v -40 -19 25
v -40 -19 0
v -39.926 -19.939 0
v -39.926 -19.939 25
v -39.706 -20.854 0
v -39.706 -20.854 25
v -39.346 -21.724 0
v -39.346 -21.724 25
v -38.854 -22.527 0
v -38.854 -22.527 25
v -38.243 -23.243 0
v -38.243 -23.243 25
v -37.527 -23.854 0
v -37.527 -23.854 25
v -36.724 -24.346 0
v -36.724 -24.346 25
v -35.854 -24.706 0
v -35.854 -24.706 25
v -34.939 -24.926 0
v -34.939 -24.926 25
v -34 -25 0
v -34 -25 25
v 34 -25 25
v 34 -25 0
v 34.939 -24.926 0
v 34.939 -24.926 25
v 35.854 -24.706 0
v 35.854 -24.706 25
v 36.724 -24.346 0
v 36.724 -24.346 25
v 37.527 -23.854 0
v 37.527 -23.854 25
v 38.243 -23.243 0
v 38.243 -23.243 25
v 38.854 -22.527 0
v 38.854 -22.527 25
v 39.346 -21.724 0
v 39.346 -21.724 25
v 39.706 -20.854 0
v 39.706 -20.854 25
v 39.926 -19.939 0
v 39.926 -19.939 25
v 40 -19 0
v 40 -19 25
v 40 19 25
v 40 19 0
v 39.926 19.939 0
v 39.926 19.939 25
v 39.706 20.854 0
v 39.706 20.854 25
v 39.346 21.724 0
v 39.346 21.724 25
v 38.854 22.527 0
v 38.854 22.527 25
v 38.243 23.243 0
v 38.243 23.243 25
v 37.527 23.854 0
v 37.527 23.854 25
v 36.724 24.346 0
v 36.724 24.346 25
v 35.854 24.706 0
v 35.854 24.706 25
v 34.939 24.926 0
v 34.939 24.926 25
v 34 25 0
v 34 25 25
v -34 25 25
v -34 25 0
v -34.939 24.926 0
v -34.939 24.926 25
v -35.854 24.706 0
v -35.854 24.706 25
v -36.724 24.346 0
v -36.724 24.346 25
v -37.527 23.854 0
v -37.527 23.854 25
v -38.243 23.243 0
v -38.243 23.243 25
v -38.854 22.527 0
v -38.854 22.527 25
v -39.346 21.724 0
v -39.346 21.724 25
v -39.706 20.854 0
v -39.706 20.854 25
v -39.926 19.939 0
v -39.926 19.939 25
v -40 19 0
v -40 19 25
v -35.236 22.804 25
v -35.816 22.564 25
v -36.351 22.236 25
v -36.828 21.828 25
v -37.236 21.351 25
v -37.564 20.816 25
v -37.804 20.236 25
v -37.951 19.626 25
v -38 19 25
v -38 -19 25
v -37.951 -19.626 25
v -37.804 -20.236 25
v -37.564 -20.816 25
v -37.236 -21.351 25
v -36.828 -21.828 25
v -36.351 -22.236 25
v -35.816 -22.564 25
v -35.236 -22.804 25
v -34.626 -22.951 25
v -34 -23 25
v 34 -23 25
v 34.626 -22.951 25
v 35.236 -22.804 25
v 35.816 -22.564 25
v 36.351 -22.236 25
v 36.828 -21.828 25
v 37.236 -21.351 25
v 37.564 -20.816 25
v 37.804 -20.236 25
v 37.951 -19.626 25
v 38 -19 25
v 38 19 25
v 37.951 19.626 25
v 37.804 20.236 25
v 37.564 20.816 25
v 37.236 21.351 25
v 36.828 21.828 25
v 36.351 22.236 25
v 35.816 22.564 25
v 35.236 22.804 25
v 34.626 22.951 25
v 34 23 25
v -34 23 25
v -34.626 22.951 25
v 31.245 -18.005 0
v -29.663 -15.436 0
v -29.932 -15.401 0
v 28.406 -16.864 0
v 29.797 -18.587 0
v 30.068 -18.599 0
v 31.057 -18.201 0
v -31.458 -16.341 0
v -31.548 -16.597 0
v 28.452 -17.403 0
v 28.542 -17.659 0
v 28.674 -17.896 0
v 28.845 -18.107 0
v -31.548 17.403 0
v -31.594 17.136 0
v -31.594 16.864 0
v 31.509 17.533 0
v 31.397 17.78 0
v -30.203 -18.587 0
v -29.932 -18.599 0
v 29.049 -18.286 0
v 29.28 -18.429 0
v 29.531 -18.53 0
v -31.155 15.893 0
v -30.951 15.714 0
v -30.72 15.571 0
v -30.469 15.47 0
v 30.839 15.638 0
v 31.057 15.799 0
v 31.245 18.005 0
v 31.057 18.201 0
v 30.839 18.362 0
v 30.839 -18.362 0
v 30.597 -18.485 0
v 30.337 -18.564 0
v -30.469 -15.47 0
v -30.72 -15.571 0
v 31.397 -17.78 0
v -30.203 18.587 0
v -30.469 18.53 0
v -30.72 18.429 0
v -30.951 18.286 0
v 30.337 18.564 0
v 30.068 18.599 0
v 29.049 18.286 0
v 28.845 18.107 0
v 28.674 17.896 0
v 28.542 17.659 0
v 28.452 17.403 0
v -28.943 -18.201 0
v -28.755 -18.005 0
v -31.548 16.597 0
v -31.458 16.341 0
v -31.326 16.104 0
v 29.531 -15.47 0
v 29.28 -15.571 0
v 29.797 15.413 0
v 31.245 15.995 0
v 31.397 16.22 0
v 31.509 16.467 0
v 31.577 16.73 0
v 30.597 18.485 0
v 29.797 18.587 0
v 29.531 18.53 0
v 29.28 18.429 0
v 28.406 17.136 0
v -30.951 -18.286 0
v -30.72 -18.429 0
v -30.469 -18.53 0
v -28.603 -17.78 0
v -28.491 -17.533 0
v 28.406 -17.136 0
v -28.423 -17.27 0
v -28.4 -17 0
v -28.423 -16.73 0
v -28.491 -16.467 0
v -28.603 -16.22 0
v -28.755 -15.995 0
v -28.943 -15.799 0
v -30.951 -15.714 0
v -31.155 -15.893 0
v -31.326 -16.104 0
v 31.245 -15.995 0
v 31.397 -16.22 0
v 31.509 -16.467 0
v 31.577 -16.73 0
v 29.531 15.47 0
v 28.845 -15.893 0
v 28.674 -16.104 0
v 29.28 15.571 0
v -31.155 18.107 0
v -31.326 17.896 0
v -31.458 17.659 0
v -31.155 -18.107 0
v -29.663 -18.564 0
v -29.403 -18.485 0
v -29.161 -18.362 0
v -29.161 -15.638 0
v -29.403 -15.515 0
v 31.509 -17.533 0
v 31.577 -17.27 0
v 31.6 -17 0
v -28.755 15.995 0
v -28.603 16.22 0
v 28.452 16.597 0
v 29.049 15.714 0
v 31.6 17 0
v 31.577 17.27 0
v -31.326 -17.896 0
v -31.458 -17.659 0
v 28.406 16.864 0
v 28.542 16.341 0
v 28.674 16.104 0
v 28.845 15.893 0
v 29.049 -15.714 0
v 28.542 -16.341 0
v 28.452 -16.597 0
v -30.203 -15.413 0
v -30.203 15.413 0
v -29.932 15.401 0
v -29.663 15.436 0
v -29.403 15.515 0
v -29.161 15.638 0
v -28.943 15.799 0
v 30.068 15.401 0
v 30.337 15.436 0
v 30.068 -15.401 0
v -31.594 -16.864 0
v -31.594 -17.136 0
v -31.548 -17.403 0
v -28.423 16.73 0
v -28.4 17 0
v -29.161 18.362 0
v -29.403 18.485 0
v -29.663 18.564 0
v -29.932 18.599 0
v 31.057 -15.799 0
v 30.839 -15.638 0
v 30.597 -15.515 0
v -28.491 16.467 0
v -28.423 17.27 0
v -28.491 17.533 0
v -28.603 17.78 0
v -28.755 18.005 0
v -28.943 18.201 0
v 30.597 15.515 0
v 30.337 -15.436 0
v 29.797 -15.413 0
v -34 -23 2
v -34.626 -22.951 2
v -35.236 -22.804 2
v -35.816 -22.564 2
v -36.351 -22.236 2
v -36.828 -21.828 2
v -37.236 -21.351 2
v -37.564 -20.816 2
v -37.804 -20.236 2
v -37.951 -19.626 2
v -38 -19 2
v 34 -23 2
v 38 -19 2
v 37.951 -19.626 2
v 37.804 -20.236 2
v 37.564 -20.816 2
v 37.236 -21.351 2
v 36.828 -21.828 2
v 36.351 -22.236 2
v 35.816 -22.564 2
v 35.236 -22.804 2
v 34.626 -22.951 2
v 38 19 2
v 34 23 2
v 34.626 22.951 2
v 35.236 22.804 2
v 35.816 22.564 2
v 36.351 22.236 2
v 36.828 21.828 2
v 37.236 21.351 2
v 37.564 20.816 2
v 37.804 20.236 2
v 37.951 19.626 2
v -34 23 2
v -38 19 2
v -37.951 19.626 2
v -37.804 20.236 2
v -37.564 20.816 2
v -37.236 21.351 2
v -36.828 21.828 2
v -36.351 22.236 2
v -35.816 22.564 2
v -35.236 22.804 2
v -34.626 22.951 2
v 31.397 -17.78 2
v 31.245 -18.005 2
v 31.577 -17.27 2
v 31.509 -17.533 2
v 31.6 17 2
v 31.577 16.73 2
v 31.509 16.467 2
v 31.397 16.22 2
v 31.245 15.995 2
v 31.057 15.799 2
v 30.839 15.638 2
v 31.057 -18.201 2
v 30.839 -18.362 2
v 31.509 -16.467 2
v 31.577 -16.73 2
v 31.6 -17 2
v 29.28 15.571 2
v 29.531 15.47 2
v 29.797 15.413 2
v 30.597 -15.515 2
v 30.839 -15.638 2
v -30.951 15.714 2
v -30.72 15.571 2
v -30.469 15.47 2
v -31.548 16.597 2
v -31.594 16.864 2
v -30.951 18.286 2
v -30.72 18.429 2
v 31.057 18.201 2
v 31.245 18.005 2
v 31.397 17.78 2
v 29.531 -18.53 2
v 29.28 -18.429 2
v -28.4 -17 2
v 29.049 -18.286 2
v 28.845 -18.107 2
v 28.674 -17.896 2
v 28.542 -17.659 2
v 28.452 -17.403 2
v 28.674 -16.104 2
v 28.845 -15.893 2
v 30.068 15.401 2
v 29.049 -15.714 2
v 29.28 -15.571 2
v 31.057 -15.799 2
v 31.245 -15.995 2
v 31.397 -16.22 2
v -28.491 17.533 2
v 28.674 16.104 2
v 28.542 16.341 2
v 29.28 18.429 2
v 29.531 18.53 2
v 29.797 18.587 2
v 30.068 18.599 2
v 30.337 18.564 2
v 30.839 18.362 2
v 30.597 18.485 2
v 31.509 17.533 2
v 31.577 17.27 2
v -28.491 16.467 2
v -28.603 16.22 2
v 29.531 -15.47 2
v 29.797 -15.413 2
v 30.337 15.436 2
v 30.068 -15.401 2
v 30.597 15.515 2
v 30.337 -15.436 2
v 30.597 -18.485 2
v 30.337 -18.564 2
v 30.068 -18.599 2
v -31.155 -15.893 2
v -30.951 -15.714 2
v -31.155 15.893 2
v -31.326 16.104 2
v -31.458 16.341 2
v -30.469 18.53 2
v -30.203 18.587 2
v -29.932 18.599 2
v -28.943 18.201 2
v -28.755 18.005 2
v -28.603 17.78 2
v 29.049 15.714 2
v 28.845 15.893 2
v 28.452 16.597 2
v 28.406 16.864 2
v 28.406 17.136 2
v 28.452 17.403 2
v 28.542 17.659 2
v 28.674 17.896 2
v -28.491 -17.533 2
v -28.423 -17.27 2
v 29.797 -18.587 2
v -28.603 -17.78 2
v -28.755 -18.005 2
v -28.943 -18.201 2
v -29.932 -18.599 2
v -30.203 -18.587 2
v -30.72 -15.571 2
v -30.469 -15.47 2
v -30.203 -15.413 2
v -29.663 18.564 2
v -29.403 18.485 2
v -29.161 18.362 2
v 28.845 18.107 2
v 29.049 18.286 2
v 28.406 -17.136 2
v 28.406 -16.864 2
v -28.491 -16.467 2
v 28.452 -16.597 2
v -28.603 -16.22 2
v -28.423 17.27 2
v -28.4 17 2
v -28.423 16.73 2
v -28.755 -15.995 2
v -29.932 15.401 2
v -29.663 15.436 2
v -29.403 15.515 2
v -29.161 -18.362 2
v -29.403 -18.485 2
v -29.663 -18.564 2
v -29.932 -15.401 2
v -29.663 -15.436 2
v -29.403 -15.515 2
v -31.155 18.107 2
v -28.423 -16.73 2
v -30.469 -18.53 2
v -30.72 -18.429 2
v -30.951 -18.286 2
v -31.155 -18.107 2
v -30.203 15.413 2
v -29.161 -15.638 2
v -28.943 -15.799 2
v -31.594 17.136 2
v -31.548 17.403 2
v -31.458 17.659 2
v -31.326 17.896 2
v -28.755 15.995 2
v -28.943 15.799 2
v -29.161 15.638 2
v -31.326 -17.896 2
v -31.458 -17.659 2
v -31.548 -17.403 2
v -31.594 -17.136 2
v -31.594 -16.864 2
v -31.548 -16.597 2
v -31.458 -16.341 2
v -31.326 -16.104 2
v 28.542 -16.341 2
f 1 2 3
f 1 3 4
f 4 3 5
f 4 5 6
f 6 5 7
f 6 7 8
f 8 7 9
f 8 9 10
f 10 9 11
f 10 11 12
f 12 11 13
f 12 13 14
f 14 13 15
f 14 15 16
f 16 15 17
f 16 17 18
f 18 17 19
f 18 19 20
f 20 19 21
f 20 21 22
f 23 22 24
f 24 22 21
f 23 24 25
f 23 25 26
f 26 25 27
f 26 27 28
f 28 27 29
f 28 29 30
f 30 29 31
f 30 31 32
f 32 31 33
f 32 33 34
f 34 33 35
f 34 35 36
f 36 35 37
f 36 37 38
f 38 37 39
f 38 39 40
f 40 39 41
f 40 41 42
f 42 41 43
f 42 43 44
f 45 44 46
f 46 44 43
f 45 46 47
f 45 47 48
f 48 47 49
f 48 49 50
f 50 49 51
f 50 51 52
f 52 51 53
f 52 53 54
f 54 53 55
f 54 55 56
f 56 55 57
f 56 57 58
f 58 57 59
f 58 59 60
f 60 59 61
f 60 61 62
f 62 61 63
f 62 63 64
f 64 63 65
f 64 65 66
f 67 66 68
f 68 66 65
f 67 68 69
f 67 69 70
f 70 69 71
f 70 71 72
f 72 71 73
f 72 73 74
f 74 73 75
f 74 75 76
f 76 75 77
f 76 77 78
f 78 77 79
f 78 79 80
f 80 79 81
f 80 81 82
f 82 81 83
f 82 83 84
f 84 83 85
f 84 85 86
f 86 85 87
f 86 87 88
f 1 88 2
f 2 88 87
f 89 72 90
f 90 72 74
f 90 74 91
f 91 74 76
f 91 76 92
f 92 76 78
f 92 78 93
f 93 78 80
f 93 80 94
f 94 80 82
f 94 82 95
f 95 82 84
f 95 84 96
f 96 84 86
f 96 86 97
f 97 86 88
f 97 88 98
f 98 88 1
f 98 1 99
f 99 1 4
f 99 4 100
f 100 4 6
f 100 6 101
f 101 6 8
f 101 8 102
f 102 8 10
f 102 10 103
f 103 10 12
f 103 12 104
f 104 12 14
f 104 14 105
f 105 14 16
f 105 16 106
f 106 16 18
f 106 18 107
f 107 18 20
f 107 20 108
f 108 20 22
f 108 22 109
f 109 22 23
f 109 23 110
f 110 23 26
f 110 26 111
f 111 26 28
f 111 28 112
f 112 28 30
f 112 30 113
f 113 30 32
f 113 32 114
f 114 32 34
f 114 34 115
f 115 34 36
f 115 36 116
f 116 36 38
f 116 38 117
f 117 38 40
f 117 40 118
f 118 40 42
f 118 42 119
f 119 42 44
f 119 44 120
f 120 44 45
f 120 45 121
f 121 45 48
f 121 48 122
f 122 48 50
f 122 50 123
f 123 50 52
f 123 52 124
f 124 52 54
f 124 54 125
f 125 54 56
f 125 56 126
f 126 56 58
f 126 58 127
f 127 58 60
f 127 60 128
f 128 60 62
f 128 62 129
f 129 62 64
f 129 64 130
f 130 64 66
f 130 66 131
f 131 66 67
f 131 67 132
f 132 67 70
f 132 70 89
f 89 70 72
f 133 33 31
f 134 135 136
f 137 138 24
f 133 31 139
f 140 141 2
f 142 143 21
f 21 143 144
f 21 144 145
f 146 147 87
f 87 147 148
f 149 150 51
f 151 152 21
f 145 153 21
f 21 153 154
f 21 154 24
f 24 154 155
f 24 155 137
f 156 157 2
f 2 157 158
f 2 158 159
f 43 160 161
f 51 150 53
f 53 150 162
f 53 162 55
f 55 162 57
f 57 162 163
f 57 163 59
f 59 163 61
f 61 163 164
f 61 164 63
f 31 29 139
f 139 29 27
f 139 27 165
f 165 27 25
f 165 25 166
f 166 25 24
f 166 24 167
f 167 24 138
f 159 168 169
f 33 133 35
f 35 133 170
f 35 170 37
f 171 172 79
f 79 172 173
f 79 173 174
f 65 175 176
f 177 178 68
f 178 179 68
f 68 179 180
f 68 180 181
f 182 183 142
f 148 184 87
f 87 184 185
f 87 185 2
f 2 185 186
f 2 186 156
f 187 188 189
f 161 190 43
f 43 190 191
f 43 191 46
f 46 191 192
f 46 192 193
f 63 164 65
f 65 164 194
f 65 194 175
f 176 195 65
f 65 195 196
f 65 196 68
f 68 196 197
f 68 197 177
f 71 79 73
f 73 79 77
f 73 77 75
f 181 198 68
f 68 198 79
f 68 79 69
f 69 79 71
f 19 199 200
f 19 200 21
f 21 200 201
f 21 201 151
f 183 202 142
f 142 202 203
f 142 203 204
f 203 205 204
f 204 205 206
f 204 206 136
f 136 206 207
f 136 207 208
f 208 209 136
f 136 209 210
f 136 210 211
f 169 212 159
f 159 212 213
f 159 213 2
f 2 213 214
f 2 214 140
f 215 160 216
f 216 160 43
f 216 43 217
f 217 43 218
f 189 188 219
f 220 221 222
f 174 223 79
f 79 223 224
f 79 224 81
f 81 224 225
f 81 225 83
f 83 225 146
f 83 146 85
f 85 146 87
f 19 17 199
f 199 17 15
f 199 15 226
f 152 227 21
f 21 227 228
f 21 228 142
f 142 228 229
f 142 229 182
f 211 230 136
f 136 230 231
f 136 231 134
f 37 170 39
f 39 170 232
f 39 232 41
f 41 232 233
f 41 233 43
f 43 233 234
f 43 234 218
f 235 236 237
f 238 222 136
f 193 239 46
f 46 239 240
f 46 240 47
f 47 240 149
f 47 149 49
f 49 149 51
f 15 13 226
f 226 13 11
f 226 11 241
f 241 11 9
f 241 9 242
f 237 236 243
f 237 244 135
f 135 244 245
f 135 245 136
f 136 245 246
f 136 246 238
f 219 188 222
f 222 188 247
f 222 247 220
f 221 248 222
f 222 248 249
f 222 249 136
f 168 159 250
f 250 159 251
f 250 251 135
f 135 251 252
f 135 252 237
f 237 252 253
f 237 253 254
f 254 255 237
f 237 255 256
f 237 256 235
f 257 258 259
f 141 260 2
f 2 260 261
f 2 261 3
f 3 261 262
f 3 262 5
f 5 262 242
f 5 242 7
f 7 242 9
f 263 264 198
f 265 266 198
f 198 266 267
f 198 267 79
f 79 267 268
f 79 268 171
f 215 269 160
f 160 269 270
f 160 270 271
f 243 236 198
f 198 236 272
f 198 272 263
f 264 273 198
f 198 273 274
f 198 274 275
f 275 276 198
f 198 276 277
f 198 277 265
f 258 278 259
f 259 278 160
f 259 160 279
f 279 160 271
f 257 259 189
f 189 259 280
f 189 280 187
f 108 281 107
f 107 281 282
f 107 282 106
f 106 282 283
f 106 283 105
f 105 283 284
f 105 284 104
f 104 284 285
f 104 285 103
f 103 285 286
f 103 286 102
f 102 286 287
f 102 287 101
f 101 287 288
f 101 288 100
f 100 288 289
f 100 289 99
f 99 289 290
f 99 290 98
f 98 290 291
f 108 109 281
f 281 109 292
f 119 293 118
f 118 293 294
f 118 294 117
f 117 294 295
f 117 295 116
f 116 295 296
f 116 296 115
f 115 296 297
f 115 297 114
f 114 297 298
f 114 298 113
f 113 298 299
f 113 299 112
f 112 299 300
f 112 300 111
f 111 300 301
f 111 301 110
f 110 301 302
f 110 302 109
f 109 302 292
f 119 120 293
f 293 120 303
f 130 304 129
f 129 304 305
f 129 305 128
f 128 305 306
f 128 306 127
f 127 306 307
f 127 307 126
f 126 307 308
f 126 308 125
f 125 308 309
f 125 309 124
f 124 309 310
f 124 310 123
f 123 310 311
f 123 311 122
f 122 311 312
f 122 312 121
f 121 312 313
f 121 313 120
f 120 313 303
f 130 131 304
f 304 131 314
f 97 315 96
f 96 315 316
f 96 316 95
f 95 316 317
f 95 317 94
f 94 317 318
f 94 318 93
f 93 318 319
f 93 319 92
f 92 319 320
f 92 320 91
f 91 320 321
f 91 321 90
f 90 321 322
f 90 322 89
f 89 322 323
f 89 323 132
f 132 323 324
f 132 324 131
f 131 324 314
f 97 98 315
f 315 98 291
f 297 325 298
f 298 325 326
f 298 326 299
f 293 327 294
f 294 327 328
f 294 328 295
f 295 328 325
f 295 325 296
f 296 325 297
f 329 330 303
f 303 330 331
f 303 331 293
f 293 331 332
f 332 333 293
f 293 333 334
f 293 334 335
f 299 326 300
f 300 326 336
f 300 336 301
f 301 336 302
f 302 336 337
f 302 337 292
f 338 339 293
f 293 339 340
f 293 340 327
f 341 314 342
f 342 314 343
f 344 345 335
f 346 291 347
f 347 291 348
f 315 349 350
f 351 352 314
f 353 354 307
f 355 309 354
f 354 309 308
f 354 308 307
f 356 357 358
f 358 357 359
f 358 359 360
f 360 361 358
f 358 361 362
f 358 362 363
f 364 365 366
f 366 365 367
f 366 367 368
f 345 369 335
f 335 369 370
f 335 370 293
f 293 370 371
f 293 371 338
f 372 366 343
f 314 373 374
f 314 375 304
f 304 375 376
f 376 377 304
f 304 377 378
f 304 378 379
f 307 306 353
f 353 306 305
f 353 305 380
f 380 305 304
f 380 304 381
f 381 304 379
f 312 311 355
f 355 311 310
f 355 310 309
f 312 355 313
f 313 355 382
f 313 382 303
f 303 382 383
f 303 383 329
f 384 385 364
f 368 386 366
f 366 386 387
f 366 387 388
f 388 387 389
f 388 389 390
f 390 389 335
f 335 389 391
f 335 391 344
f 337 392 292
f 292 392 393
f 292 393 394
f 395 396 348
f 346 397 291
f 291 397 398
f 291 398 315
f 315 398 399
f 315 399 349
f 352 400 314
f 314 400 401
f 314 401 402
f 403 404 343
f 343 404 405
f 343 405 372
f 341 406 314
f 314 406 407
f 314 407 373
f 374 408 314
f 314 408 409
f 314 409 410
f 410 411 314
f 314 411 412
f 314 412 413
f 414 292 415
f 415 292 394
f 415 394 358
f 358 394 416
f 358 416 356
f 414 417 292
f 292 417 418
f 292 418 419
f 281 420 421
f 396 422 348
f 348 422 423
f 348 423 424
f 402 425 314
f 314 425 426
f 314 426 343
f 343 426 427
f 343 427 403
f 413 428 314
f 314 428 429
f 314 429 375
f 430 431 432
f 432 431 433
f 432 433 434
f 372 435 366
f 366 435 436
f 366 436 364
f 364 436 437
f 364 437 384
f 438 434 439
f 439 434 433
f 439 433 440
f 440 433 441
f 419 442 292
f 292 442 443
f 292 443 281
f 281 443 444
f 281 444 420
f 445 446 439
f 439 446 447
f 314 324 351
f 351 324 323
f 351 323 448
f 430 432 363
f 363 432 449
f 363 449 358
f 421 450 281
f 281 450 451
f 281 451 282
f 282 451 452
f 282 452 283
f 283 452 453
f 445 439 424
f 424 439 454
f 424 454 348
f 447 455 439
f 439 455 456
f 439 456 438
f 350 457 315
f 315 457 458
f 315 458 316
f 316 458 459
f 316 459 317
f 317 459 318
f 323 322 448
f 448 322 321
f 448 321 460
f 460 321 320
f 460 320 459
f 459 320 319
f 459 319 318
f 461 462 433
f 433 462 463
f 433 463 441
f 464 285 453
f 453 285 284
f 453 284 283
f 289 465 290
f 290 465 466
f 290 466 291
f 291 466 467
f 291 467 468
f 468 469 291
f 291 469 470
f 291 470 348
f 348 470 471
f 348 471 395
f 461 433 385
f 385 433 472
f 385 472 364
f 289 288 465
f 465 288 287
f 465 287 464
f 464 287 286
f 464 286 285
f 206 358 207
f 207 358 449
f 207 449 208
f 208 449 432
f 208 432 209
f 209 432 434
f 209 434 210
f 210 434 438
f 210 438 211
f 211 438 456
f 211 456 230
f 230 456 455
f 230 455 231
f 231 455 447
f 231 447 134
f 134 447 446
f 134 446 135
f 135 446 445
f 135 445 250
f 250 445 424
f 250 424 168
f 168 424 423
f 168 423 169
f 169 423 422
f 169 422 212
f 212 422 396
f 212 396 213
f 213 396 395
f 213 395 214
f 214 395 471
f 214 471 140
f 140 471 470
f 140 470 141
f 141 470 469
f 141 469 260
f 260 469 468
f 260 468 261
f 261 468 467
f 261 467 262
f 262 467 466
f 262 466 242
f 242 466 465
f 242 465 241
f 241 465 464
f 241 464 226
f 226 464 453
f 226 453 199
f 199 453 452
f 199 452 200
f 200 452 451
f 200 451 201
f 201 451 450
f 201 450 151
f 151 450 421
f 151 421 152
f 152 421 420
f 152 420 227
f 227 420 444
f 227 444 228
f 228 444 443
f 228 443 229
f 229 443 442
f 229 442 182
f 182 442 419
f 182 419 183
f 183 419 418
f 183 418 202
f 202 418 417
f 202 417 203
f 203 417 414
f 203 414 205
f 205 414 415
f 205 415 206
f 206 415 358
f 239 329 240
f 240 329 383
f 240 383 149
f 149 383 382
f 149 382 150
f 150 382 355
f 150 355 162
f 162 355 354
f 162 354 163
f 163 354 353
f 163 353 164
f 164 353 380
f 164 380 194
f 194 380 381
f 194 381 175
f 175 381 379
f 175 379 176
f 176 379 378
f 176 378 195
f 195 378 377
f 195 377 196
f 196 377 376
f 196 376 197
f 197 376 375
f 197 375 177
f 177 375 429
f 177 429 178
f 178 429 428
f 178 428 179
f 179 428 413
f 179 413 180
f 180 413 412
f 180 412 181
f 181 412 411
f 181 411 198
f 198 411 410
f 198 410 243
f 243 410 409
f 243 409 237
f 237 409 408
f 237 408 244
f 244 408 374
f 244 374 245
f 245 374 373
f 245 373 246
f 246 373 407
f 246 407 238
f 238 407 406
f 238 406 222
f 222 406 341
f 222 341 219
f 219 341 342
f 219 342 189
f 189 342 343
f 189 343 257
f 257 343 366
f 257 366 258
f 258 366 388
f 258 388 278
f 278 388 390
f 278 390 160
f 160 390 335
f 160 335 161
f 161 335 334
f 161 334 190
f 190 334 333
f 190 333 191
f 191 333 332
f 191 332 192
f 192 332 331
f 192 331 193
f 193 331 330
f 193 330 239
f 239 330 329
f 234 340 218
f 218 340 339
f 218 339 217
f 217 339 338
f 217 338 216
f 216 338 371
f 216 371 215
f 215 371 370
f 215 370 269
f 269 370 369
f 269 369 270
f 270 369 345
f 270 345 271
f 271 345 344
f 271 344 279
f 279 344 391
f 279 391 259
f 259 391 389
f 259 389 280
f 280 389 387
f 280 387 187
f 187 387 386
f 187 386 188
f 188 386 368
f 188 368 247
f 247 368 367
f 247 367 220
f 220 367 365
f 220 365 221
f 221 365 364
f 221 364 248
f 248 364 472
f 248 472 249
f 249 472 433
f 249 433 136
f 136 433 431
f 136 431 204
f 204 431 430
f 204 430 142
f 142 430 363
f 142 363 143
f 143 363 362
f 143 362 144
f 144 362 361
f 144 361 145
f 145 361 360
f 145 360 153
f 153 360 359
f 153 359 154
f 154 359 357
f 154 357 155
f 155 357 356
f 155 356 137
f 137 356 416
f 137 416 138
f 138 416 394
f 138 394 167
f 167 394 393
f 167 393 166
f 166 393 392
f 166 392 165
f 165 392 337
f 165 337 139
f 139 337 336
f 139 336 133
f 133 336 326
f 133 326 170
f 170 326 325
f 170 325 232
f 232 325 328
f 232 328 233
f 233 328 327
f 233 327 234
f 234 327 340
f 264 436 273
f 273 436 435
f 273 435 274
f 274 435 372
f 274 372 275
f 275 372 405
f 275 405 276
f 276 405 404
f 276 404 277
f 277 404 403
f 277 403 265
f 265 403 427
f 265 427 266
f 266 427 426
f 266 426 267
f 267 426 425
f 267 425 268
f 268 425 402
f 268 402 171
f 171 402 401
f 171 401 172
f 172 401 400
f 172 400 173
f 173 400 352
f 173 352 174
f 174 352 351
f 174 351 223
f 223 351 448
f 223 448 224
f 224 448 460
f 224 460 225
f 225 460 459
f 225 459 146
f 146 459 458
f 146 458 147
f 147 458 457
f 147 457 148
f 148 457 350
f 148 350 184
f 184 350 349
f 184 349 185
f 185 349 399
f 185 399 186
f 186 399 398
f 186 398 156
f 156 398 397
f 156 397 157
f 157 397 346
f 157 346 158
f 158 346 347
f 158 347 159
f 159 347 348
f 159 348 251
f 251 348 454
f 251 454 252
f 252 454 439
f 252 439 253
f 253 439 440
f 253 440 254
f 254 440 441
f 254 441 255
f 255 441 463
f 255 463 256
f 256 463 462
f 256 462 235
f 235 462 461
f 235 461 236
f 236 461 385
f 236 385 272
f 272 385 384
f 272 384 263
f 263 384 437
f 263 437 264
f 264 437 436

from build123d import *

# Parameters (mm, degrees)
BODY_BLOCK_DEPTH       = 25
BODY_SHELL_T           = -2
FLOOR_HOLES_DEPTH      = 54.38539126
FLOOR_HOLES_DEPTH_BACK = 54.38539126
SKETCH2_R              = 1.6


with BuildPart() as part:
    # Sketch1 → Body_Block (new body)
    with BuildSketch(Plane.XY):
        with BuildLine():
            Line((-34, -25), (34, -25))
            ThreePointArc((34, -25), (38.242640687, -23.242640687), (40, -19))
            Line((40, -19), (40, 19))
            ThreePointArc((40, 19), (38.242640687, 23.242640687), (34, 25))
            Line((34, 25), (-34, 25))
            ThreePointArc((-34, 25), (-38.242640687, 23.242640687), (-40, 19))
            Line((-40, 19), (-40, -19))
            ThreePointArc((-40, -19), (-38.242640687, -23.242640687), (-34, -25))
        make_face()
    extrude(amount=BODY_BLOCK_DEPTH)

    # Body_Shell
    body_shell_openings = [part.faces().sort_by_distance(p)[0] for p in [
        (0, 0, 25),
    ]]
    offset(amount=BODY_SHELL_T, openings=body_shell_openings, kind=Kind.INTERSECTION)

    # Sketch2 → Floor_Holes (cut, two sides: drawn at the far end of the back side and taken through both)
    with BuildSketch(Plane.XY.offset(-FLOOR_HOLES_DEPTH_BACK)):
        with Locations((-30, -17)):
            Circle(SKETCH2_R)
        with Locations((-30, 17)):
            Circle(SKETCH2_R)
        with Locations((30, -17)):
            Circle(SKETCH2_R)
        with Locations((30, 17)):
            Circle(SKETCH2_R)
    extrude(amount=FLOOR_HOLES_DEPTH + FLOOR_HOLES_DEPTH_BACK, mode=Mode.SUBTRACT)


solid = part.part
